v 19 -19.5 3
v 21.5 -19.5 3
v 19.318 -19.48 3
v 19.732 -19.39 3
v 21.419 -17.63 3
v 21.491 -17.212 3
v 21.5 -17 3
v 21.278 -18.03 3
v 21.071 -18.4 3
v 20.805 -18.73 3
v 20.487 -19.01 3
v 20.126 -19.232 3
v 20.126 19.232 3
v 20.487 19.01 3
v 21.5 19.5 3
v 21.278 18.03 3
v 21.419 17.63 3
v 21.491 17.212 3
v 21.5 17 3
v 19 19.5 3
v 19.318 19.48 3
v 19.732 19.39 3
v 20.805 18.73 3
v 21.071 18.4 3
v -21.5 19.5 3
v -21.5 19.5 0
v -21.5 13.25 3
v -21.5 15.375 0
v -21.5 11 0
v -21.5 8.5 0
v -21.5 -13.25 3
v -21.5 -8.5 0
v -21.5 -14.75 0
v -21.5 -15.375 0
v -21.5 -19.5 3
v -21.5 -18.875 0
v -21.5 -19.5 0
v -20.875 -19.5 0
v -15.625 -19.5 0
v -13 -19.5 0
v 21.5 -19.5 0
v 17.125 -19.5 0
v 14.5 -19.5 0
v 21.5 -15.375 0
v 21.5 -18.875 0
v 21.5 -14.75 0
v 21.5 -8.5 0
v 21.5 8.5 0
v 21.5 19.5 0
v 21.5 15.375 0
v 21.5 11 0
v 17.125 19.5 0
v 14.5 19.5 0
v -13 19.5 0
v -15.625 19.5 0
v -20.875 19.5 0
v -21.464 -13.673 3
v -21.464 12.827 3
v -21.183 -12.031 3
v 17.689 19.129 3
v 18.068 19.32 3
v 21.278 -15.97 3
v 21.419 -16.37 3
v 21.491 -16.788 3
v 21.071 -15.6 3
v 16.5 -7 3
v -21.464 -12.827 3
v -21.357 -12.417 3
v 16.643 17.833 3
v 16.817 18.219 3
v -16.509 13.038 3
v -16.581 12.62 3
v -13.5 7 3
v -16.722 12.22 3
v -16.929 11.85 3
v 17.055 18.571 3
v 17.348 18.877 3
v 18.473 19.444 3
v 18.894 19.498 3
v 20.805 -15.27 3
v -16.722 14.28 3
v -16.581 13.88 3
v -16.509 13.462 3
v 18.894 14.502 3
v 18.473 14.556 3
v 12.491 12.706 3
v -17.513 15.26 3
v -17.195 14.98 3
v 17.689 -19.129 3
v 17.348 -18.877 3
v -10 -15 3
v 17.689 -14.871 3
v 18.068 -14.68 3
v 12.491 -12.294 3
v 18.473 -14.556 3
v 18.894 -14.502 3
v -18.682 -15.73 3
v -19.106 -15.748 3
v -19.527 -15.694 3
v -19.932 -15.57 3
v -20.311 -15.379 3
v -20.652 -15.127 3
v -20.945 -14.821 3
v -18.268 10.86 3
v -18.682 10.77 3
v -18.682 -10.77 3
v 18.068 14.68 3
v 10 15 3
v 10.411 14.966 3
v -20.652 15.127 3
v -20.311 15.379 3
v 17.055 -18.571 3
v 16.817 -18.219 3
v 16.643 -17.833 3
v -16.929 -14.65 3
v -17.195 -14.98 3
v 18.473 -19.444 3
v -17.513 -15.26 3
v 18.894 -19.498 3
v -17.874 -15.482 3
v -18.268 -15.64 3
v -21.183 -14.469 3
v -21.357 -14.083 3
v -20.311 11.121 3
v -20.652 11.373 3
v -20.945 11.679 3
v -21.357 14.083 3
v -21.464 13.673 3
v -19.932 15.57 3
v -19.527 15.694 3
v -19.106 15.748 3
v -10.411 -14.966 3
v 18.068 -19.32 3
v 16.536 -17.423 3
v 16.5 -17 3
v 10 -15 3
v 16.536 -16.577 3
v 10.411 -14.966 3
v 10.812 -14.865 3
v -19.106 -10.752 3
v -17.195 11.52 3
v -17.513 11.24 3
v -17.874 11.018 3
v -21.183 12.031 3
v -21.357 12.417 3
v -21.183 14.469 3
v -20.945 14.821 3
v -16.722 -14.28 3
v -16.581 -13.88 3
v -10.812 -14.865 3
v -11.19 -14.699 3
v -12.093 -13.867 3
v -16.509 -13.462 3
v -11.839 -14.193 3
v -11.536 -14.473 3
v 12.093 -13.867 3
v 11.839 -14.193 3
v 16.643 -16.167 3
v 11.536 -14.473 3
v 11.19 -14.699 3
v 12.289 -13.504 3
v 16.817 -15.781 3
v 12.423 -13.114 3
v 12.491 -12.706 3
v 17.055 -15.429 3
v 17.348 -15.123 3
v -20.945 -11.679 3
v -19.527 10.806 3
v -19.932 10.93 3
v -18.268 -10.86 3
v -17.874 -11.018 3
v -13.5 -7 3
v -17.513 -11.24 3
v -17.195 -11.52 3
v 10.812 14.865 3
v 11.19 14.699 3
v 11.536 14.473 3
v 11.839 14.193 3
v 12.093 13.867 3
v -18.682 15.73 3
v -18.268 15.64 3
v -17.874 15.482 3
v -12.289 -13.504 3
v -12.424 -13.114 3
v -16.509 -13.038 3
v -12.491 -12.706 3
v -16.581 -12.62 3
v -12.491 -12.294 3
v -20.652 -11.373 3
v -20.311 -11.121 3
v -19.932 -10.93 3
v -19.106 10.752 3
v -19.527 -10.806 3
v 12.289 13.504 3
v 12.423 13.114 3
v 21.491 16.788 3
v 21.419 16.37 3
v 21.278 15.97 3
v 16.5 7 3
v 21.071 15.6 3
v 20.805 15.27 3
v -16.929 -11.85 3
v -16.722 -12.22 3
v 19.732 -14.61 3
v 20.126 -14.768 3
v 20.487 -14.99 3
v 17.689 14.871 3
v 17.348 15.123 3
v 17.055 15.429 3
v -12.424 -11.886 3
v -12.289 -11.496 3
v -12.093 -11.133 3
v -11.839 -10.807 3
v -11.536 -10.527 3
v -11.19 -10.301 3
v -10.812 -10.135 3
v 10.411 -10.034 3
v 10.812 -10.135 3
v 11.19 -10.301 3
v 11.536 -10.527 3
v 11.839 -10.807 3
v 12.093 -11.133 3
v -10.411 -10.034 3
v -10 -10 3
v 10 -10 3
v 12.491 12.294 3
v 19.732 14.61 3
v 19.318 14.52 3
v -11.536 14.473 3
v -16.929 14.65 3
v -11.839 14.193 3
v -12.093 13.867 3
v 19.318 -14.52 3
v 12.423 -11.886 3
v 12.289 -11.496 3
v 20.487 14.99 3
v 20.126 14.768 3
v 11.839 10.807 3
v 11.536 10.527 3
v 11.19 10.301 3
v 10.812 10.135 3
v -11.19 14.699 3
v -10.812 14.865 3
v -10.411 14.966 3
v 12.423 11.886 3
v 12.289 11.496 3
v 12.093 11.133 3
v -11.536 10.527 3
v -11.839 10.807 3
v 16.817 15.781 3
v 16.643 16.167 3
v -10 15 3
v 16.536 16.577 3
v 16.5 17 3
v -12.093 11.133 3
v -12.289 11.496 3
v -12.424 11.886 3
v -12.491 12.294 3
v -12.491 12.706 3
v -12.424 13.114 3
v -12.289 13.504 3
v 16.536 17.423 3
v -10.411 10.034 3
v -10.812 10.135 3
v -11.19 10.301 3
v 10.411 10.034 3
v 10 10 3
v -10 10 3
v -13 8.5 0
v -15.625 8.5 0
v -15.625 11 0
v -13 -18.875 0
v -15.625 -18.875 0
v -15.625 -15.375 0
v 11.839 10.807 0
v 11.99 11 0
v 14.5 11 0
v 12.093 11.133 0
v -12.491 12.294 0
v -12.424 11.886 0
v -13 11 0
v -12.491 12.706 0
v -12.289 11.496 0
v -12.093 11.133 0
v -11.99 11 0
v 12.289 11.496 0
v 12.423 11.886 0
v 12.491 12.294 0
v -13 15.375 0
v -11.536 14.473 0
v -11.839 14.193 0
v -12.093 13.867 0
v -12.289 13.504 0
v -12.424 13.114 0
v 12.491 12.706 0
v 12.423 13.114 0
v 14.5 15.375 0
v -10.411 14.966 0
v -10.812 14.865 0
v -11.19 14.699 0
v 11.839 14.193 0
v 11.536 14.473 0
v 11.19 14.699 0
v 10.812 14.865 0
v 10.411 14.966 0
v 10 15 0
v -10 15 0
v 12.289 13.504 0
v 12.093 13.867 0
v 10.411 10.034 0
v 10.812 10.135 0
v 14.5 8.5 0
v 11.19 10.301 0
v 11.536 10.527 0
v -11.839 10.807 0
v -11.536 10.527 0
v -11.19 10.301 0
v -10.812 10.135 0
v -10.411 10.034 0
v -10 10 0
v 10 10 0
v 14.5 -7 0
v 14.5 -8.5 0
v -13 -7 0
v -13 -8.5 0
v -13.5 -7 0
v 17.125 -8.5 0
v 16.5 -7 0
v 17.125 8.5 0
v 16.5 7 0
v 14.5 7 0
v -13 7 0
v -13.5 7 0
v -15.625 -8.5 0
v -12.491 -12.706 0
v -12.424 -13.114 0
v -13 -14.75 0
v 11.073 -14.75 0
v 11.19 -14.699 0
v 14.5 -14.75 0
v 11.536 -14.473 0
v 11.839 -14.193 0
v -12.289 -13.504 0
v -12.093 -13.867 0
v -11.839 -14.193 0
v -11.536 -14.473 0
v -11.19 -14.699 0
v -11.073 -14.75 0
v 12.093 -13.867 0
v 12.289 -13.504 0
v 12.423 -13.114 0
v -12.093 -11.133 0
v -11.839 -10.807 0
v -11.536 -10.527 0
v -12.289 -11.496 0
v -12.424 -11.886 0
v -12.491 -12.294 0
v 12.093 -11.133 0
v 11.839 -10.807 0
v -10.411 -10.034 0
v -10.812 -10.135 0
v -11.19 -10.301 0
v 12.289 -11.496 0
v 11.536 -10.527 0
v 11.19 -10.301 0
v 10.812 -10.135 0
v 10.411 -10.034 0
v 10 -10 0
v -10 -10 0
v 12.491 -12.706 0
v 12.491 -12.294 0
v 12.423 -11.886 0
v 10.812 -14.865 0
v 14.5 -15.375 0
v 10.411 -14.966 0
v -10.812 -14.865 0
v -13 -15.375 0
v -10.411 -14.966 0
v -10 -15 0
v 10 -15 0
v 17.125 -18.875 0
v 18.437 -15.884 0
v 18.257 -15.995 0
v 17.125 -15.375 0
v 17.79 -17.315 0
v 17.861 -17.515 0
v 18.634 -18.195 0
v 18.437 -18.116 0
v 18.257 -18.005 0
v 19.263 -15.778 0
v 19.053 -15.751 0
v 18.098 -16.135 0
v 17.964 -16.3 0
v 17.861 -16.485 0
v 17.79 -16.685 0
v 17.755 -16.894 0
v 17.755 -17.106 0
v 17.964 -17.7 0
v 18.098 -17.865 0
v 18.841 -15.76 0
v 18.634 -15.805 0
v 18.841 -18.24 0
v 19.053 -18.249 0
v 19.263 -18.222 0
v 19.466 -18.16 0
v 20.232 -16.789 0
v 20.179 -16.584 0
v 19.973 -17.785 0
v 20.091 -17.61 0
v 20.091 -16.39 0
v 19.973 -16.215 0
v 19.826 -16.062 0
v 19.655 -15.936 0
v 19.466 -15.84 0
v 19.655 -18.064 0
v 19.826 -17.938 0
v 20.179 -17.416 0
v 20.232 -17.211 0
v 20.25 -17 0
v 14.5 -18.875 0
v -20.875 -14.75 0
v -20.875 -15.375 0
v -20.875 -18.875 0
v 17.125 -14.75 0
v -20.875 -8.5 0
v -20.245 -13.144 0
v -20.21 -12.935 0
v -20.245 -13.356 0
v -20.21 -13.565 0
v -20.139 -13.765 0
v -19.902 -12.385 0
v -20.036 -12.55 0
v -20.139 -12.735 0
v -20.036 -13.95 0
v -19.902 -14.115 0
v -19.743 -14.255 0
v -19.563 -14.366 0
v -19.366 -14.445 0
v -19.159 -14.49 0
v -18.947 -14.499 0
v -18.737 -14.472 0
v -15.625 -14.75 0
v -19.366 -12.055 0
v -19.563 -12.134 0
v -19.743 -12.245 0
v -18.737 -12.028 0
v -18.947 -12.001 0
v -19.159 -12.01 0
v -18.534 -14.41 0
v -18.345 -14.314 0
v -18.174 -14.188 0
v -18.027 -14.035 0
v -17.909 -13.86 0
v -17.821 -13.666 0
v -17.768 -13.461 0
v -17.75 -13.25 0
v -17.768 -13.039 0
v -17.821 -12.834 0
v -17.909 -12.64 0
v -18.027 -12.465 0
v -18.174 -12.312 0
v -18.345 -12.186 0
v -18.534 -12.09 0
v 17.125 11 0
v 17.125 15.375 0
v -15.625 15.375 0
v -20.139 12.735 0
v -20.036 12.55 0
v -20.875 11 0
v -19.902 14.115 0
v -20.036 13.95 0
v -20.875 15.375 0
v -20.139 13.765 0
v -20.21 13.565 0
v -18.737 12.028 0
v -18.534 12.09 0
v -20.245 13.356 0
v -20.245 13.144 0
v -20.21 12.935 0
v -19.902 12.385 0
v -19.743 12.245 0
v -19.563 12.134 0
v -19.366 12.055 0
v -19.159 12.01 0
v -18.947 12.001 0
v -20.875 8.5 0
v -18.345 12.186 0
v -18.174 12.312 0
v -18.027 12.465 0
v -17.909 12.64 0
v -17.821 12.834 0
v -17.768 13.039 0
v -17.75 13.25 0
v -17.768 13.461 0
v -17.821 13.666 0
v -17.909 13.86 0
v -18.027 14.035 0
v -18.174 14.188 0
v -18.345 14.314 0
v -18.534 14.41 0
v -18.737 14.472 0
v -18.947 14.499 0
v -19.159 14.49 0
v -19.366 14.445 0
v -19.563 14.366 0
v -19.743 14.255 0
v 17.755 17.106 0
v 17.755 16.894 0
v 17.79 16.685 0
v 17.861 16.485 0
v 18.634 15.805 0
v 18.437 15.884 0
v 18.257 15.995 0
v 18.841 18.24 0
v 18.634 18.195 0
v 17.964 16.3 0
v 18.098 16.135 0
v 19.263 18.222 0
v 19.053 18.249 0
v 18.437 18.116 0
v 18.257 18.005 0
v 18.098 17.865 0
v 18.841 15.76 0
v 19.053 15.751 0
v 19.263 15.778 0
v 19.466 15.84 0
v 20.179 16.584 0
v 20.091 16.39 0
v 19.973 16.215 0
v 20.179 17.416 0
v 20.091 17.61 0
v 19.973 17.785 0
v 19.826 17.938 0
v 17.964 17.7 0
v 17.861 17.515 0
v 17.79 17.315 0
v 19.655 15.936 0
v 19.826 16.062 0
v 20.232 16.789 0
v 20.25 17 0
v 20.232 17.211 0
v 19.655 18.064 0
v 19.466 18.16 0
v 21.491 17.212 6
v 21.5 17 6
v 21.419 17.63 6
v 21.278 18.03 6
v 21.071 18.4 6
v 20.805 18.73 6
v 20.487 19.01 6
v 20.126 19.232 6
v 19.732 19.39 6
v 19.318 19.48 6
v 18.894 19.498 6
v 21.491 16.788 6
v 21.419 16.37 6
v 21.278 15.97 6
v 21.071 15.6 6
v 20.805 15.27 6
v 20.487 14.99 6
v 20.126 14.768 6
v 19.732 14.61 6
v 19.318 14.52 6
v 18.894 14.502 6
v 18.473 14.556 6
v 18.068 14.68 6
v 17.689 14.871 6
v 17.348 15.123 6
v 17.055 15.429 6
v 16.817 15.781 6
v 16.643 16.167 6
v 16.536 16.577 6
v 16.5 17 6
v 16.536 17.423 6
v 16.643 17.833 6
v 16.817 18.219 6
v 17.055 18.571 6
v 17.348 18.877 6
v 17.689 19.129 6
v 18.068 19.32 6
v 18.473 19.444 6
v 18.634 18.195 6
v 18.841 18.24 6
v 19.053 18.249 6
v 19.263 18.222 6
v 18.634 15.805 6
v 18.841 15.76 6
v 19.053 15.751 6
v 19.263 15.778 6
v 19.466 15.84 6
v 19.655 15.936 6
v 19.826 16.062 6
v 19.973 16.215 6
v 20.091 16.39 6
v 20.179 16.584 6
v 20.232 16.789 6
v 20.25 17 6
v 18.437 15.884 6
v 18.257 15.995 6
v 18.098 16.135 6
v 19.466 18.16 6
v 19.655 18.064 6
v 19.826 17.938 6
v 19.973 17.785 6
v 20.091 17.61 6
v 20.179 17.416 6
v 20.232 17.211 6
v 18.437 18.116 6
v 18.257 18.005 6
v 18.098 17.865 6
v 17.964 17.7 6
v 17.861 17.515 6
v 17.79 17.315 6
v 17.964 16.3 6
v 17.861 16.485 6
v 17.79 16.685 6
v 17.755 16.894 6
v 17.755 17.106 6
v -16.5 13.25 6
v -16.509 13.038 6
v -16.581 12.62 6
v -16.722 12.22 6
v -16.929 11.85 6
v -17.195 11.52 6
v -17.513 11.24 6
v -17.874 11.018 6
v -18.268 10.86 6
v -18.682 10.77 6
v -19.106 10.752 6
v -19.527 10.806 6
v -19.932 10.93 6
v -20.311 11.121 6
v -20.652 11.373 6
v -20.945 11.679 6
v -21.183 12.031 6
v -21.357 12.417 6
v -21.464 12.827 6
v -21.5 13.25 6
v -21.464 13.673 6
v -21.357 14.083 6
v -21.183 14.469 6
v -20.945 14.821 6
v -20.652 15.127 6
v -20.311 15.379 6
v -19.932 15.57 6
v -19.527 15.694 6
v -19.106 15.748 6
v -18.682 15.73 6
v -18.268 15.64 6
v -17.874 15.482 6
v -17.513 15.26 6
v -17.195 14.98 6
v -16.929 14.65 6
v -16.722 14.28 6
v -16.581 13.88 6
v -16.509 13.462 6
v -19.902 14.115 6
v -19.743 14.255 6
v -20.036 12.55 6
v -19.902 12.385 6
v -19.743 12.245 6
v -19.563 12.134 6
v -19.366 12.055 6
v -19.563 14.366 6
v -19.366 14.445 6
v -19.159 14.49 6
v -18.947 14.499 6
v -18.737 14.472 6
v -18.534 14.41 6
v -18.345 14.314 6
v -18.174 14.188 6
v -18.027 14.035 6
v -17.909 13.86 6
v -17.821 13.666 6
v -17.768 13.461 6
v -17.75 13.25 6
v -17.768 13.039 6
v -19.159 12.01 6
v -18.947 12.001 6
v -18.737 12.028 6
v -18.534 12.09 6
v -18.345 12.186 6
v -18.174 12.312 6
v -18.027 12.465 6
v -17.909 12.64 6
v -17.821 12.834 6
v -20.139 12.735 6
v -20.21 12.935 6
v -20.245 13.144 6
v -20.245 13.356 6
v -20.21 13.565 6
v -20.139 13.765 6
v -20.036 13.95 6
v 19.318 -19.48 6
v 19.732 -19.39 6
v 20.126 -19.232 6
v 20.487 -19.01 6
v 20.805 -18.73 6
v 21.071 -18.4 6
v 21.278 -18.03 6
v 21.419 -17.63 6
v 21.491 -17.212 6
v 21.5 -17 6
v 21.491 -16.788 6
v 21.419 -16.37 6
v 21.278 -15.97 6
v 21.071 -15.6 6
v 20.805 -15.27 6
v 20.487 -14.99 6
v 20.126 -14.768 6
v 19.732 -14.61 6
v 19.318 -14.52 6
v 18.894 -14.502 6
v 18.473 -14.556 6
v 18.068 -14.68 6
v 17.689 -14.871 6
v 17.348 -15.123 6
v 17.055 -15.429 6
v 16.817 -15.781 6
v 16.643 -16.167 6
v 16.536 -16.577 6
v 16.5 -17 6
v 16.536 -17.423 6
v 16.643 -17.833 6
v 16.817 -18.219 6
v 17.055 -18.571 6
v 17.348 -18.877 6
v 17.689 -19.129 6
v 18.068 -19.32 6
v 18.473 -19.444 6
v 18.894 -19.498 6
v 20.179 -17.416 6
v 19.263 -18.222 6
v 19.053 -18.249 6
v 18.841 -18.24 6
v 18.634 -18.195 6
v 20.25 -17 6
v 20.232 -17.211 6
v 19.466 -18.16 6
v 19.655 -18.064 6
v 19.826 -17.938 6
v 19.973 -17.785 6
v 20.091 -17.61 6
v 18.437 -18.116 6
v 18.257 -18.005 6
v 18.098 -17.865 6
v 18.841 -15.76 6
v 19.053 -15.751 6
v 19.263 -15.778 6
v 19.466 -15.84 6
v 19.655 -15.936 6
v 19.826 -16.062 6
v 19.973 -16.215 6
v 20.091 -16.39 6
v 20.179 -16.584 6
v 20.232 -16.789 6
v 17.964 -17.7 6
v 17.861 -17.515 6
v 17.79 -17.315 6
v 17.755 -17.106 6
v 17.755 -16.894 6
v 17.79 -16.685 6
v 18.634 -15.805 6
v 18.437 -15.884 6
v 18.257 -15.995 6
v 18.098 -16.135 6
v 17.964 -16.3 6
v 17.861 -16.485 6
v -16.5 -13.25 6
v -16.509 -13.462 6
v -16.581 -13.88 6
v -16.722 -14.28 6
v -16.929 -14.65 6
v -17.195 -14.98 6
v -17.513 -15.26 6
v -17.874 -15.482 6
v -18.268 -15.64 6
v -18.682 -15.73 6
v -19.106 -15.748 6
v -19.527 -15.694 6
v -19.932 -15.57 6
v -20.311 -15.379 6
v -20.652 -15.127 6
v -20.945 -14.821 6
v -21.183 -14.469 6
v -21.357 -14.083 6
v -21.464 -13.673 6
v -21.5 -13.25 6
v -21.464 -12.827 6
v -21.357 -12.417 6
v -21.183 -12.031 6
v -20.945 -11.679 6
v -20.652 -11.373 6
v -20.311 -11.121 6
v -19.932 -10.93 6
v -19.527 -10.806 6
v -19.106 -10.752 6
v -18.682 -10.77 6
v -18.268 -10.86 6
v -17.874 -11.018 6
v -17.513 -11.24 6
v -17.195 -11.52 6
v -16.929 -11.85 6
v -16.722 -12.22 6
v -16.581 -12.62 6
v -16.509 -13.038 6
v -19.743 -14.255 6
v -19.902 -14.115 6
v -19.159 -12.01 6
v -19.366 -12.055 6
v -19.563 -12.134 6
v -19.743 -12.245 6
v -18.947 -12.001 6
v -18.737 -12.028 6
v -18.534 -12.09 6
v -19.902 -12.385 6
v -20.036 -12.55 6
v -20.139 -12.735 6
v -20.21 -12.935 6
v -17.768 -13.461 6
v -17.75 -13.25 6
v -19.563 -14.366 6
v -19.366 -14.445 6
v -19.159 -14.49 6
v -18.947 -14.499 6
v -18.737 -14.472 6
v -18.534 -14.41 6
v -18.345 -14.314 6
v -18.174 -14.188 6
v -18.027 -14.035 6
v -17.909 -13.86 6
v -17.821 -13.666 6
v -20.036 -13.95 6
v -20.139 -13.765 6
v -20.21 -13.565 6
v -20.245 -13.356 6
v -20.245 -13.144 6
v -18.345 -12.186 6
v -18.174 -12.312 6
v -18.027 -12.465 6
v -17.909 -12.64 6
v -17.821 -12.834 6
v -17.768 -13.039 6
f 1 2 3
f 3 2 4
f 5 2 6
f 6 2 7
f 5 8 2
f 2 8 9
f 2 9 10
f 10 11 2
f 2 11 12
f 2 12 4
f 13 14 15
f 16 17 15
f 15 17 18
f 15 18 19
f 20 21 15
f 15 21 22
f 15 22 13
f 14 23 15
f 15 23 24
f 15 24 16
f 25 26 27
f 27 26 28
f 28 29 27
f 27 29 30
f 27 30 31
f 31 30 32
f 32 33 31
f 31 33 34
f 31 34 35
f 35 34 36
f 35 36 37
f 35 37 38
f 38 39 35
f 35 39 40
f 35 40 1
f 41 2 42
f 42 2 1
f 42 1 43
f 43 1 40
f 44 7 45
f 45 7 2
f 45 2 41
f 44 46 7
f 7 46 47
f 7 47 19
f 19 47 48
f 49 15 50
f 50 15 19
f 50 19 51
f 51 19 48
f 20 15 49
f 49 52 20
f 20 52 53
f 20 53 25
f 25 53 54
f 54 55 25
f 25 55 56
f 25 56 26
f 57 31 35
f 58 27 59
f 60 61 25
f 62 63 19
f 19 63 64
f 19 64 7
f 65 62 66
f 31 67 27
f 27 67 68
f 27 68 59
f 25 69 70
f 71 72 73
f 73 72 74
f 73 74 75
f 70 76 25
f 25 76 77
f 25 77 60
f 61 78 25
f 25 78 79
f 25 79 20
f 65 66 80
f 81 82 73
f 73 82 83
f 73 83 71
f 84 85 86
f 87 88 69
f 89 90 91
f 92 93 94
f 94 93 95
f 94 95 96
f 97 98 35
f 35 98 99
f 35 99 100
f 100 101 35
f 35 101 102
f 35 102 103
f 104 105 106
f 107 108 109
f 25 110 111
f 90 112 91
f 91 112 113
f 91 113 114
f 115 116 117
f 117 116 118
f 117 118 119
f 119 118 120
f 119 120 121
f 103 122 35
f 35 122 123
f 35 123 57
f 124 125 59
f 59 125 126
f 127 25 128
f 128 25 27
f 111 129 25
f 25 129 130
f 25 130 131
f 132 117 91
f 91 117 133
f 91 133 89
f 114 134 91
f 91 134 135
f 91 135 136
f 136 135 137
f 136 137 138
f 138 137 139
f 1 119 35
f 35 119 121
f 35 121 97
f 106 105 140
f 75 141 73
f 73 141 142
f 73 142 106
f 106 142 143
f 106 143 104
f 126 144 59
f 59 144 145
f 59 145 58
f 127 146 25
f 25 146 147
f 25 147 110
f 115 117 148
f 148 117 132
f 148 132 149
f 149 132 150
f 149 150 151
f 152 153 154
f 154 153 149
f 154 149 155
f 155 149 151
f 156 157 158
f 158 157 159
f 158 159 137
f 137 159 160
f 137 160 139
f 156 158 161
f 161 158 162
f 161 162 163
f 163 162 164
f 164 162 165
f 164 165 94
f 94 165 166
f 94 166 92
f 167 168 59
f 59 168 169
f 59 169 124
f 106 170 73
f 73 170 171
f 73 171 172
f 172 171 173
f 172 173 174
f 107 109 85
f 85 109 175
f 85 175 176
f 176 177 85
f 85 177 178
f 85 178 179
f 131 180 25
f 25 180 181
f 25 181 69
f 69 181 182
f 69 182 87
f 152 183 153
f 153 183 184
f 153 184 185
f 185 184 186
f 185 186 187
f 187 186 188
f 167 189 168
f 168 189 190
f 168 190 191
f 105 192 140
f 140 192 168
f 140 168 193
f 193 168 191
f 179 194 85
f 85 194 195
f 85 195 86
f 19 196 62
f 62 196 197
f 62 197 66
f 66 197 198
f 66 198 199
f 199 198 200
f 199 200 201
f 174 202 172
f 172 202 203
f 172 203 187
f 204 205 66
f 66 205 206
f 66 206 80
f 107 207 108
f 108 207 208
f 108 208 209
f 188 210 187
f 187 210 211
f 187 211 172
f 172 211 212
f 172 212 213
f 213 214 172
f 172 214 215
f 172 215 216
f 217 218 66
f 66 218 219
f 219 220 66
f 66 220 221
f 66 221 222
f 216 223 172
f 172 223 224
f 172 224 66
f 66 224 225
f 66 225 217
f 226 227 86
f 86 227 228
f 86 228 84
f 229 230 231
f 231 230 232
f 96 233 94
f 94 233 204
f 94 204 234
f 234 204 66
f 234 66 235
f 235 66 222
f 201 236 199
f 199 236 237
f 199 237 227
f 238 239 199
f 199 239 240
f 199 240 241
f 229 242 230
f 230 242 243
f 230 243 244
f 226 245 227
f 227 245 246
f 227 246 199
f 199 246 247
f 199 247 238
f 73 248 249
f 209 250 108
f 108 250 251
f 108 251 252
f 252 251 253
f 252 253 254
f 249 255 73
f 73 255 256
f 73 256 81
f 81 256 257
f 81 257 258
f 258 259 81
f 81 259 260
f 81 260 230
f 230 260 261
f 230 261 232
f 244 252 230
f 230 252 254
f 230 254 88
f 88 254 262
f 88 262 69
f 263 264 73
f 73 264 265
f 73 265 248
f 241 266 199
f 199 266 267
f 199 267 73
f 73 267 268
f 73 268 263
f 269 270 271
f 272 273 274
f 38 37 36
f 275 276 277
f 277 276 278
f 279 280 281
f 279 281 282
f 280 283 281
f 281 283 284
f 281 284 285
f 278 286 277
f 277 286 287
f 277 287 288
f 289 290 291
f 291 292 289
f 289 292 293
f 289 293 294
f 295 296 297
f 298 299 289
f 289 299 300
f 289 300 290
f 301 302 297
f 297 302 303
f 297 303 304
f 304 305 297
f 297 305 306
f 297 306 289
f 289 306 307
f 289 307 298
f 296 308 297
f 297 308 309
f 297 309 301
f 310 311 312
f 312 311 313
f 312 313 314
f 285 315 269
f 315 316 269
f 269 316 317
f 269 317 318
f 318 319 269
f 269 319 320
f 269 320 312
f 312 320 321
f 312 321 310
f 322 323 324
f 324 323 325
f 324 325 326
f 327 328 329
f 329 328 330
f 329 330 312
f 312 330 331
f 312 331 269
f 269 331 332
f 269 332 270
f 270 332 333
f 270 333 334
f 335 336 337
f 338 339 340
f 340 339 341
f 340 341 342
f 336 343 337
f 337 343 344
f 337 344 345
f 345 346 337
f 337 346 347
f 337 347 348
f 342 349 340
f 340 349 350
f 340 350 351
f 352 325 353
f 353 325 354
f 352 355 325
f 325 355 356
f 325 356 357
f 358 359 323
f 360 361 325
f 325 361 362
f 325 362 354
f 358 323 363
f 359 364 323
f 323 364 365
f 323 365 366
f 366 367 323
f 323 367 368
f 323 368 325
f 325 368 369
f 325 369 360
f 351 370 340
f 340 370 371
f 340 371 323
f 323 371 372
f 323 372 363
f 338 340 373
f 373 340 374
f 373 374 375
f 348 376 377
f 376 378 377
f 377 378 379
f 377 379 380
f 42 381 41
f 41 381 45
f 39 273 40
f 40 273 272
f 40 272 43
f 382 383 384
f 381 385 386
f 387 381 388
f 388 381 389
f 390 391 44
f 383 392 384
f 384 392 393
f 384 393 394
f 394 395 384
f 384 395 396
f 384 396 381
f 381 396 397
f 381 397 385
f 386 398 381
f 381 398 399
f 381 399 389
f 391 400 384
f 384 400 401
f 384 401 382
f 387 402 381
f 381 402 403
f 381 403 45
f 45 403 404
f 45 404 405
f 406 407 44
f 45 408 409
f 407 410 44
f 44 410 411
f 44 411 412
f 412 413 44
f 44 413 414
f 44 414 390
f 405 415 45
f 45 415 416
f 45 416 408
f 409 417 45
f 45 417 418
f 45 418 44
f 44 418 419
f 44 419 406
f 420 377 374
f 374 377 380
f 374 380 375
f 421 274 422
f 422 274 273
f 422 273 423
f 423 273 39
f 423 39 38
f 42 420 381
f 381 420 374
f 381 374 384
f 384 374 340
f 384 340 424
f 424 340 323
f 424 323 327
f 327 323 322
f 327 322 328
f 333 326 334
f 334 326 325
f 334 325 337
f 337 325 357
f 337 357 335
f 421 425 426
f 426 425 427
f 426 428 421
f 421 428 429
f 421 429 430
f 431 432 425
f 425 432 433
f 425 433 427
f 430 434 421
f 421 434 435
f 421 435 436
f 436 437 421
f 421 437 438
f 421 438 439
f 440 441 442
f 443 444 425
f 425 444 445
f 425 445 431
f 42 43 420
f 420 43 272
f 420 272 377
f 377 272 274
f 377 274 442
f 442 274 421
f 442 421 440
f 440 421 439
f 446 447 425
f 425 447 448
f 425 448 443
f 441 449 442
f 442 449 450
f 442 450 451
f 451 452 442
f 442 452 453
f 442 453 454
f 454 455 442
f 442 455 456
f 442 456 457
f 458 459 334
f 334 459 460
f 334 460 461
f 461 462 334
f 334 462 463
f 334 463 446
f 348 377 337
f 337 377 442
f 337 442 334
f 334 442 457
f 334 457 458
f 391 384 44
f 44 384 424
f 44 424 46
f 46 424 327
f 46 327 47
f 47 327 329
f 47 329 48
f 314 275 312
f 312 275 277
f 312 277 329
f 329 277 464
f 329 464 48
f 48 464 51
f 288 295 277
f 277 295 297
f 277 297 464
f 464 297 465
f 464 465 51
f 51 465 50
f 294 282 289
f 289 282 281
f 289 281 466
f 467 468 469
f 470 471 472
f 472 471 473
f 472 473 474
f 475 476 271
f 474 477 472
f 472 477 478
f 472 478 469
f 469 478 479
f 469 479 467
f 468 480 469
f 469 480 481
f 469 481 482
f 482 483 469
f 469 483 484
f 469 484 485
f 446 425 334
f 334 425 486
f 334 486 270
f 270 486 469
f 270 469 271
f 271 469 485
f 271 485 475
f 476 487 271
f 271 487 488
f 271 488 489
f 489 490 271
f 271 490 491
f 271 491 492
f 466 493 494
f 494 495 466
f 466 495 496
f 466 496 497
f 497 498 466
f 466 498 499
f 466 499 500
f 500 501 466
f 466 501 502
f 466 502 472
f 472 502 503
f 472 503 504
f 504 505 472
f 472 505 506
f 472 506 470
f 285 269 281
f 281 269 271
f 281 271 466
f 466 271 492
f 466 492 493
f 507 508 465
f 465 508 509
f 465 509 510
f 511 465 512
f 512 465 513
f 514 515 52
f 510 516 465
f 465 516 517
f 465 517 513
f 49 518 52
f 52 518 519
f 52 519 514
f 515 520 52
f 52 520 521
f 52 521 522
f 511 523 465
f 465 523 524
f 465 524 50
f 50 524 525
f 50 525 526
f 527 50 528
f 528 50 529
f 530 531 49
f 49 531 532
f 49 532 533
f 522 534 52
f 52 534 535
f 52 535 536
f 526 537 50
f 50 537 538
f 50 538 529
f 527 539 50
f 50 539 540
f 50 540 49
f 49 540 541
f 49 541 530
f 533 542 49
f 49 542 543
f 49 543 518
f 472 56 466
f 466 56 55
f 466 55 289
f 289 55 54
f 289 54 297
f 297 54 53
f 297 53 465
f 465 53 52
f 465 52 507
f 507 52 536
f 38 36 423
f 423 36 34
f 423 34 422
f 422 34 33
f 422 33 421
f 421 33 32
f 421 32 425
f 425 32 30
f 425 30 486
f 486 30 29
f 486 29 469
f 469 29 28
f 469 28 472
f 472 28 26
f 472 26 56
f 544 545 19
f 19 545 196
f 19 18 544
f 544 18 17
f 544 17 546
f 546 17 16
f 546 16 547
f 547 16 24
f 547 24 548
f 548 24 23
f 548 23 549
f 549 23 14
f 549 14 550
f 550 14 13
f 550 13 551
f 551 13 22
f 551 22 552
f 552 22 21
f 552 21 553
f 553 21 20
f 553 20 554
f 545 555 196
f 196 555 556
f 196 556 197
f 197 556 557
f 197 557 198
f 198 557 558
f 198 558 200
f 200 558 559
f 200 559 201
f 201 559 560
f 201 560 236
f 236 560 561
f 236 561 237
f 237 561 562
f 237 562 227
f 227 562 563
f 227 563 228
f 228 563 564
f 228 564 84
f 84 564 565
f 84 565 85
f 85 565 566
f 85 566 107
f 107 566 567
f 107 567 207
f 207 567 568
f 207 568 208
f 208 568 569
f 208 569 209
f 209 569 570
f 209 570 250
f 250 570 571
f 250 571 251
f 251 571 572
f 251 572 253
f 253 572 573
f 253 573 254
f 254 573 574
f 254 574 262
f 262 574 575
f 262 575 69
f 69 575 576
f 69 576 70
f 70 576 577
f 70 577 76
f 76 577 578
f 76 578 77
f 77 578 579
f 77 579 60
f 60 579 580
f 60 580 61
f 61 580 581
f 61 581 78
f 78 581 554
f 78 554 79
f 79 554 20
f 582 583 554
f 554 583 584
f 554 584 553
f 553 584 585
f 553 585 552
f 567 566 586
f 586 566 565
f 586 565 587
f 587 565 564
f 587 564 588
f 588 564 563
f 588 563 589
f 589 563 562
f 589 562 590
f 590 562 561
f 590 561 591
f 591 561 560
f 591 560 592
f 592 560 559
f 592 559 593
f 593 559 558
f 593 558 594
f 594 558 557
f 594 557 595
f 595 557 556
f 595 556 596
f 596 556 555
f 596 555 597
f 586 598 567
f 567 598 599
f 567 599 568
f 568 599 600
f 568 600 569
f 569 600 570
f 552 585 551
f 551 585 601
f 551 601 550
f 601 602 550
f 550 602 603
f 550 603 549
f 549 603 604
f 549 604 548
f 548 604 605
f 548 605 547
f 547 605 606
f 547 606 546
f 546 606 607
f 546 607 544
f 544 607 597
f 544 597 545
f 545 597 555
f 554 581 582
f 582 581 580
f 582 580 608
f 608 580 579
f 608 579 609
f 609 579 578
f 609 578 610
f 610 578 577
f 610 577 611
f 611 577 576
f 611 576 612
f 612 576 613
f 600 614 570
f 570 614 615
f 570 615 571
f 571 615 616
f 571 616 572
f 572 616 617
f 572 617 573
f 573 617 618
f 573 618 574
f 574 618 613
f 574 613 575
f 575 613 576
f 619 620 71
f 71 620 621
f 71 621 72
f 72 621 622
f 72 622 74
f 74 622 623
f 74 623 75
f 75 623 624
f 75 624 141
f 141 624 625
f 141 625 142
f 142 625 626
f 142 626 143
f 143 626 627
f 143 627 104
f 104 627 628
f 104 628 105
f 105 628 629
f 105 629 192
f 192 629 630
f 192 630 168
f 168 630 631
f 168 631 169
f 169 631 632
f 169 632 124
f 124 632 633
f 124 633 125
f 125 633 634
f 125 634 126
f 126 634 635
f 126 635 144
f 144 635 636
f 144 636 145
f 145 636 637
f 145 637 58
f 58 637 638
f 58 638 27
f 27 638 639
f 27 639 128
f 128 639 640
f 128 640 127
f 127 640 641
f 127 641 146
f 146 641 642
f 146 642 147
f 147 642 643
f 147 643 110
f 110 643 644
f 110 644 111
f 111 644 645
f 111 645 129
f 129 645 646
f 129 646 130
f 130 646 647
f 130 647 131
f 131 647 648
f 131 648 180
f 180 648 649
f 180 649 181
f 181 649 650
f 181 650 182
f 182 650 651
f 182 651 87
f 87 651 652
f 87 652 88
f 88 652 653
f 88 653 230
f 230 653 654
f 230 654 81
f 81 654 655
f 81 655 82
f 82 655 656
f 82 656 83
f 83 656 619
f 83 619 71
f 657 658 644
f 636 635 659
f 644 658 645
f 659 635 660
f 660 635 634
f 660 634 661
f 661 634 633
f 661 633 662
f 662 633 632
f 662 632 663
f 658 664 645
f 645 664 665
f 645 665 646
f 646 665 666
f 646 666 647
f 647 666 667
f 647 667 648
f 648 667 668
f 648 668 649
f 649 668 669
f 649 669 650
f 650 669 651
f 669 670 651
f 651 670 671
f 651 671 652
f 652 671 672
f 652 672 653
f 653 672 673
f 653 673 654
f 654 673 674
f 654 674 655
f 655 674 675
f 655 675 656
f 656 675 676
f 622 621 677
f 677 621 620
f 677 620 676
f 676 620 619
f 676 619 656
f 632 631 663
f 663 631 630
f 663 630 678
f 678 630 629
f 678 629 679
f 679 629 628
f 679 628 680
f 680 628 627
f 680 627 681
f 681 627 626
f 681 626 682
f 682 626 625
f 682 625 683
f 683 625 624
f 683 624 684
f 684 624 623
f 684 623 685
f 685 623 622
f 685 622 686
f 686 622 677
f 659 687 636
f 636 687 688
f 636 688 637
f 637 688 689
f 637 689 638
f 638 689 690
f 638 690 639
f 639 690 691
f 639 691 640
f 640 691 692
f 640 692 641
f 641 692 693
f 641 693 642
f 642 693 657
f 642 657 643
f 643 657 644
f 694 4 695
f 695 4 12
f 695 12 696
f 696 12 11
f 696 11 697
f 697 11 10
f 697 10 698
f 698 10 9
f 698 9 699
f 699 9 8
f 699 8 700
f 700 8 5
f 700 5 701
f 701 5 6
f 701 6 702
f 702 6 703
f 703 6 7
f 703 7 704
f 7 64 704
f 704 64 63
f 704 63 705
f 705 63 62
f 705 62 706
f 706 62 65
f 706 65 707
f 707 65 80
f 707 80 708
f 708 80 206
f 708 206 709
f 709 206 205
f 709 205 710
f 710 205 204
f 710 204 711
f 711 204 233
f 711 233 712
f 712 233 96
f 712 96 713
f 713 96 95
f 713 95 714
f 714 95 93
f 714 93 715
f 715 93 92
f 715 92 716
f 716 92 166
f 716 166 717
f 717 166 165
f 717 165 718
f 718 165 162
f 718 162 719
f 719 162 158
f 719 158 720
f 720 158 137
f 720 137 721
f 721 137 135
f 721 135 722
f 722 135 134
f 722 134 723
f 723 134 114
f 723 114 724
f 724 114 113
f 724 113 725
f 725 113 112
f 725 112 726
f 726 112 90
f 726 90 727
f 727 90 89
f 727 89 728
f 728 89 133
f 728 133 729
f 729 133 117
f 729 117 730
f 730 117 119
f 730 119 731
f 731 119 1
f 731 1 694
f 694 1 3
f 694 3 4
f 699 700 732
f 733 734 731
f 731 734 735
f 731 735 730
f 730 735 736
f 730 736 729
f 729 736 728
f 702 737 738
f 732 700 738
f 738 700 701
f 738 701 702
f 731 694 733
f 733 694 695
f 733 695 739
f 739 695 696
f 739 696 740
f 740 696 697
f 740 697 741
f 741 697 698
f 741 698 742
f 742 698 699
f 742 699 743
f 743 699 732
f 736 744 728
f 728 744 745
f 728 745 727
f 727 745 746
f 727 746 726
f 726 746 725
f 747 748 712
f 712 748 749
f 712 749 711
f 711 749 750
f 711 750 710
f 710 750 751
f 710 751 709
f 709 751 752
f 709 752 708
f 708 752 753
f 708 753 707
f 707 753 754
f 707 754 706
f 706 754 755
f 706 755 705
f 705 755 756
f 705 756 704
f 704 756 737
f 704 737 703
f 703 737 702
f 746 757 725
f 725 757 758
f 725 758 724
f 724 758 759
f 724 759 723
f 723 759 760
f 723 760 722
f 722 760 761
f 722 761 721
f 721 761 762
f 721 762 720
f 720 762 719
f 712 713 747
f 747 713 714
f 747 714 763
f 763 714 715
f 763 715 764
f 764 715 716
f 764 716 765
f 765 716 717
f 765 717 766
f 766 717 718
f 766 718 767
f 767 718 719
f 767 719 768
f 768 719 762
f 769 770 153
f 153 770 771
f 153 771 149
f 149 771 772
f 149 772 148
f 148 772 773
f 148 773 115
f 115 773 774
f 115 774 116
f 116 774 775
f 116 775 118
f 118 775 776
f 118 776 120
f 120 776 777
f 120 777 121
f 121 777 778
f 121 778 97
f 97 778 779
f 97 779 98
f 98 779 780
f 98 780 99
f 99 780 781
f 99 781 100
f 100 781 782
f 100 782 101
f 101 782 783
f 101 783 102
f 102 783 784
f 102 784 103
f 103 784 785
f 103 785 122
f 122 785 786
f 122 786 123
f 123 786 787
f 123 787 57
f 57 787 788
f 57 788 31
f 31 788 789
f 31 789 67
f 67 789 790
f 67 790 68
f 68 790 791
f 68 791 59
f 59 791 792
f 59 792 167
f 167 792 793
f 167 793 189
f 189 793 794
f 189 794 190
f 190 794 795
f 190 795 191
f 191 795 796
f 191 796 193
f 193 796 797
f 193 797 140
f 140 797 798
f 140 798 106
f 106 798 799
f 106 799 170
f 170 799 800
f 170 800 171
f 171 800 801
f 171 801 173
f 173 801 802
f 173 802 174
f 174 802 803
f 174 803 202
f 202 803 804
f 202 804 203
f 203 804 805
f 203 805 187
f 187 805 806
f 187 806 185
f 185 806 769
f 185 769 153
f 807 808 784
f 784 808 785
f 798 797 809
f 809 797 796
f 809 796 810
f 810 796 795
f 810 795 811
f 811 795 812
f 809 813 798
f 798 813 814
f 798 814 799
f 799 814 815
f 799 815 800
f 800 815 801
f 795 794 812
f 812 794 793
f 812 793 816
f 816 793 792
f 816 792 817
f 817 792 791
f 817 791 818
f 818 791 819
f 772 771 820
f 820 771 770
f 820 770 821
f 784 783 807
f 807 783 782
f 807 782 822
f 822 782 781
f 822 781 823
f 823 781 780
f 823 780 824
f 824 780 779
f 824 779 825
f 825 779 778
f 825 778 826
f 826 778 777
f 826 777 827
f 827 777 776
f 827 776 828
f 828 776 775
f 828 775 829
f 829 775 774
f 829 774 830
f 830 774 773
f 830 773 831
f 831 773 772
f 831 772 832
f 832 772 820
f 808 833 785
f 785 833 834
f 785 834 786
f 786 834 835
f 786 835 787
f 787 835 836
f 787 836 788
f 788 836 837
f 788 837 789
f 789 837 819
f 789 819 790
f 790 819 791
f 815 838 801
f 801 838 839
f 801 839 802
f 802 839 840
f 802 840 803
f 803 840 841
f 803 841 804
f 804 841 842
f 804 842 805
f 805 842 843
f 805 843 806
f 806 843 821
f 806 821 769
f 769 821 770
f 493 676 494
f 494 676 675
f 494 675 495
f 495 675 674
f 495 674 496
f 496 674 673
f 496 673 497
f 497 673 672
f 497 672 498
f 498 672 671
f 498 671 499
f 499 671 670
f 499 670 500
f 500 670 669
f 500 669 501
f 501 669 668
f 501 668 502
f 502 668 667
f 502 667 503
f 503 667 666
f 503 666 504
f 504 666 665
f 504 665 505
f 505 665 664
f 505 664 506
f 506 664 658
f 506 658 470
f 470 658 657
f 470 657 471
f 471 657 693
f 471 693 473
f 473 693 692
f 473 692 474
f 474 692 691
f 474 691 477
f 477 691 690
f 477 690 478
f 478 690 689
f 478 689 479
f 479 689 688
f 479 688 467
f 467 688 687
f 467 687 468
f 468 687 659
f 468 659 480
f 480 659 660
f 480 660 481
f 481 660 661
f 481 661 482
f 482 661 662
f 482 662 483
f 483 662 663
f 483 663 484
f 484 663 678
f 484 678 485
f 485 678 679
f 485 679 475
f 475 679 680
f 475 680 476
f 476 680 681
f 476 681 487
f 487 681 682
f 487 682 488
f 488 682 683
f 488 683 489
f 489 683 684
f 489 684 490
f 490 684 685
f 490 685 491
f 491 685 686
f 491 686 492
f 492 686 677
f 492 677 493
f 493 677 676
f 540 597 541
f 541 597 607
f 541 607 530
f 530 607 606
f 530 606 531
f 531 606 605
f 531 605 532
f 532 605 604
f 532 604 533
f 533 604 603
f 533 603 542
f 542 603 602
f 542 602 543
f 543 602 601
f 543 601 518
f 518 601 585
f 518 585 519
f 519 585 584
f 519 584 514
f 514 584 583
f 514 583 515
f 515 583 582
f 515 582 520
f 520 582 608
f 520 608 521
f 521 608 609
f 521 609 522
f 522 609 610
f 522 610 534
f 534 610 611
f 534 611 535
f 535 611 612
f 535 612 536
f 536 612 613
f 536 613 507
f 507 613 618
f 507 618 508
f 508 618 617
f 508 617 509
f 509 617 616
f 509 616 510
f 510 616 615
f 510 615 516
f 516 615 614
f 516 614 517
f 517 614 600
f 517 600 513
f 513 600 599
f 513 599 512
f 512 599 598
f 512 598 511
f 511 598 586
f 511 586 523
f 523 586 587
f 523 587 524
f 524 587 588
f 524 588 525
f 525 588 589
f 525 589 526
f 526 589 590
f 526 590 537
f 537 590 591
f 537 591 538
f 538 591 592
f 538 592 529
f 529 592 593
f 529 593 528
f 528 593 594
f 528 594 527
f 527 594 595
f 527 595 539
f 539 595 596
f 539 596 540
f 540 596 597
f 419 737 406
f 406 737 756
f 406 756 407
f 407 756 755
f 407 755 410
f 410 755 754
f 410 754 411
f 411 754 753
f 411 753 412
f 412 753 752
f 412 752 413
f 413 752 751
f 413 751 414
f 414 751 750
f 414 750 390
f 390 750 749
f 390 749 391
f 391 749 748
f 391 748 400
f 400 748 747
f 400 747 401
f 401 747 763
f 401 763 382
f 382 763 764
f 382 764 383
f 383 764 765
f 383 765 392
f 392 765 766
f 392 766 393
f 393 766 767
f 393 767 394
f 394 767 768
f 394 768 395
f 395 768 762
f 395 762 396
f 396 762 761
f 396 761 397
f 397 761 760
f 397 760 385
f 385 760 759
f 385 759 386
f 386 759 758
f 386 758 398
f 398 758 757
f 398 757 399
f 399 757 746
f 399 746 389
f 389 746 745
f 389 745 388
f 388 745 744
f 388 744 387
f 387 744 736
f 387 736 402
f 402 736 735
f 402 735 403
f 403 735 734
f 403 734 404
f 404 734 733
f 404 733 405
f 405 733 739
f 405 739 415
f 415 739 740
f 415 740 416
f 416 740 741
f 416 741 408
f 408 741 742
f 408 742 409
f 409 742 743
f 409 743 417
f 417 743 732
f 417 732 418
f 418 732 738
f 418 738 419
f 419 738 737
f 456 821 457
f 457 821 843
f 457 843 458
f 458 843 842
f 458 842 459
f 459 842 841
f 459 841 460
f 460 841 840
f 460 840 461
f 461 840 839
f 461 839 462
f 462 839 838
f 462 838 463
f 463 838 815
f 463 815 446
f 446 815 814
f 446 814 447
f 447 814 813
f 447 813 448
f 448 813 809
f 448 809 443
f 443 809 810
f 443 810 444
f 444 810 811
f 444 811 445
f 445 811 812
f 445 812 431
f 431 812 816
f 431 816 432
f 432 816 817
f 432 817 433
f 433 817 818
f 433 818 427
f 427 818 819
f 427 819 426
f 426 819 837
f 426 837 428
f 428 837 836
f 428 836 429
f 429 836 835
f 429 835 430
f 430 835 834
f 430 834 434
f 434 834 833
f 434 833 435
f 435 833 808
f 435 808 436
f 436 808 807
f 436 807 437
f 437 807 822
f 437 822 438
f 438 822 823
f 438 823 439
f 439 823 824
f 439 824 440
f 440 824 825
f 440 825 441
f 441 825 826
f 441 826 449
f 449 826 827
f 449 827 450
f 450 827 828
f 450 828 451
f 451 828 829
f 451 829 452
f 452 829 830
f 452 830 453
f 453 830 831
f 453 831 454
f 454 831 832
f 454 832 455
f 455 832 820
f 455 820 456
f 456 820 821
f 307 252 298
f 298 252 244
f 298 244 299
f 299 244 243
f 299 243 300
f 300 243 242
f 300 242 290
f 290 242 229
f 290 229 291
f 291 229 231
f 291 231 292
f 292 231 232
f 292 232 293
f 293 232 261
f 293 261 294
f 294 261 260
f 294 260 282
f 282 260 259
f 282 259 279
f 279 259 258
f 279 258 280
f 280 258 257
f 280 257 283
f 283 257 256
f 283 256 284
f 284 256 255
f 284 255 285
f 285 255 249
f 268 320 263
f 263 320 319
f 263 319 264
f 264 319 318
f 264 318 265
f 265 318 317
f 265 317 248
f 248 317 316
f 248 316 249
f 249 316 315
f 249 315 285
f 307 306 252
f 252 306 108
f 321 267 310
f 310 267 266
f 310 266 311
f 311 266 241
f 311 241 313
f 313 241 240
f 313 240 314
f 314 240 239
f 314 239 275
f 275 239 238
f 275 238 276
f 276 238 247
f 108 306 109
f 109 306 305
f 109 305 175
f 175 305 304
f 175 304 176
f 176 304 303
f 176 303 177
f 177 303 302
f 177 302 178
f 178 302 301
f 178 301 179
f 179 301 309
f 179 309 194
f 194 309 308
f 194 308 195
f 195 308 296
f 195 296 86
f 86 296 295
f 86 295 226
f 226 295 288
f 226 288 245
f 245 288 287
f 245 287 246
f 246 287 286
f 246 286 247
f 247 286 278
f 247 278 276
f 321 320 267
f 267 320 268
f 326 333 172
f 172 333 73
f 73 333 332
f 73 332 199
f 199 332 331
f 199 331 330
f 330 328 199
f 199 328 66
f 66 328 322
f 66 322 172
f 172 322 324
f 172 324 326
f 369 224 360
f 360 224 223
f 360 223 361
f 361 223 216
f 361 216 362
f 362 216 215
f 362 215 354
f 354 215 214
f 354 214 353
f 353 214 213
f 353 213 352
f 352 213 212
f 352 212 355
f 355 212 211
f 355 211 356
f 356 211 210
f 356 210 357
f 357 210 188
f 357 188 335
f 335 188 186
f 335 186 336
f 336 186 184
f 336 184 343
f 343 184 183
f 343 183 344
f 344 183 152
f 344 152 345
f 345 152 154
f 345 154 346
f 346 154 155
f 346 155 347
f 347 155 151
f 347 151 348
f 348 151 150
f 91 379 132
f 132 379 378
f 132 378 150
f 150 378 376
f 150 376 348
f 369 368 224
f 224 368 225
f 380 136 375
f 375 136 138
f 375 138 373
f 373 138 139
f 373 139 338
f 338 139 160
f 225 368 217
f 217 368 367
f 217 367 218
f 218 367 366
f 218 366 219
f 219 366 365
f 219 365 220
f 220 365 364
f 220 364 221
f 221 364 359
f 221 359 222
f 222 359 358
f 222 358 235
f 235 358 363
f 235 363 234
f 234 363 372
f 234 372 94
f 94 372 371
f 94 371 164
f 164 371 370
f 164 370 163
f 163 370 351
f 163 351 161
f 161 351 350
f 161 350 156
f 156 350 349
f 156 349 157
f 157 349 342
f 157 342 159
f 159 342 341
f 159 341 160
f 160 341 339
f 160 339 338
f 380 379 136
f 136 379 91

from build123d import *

# Parameters (mm, degrees)
SCHIZZO1_W                   = 43
SCHIZZO1_H                   = 39
ESTRUSIONE_ESTRUSIONE1_DEPTH = 3
SCHIZZO2_R                   = 2.5
ESTRUSIONE_ESTRUSIONE2_DEPTH = 3
SCHIZZO3_R                   = 1.25
TAGLIO_ESTRUSIONE1_DEPTH     = 30.639500671
SCHIZZO4_W                   = 30
SCHIZZO4_H                   = 14
TAGLIO_ESTRUSIONE2_DEPTH     = 30.180472923


with BuildPart() as part:
    # Schizzo1 → Estrusione-Estrusione1 (new body)
    with BuildSketch(Plane.XY):
        Rectangle(SCHIZZO1_W, SCHIZZO1_H)
    extrude(amount=ESTRUSIONE_ESTRUSIONE1_DEPTH)

    # Schizzo2 → Estrusione-Estrusione2 (add)
    with BuildSketch(Plane.XY.offset(3)):
        with Locations((19, 17)):
            Circle(SCHIZZO2_R)
        with Locations(Location((-19, 13.25, 0), (0, 0, 180))):
            Circle(SCHIZZO2_R)
        with Locations((19, -17)):
            Circle(SCHIZZO2_R)
        with Locations(Location((-19, -13.25, 0), (0, 0, 180))):
            Circle(SCHIZZO2_R)
    extrude(amount=ESTRUSIONE_ESTRUSIONE2_DEPTH)

    # Schizzo3 → Taglio-Estrusione1 (cut, through all)
    with BuildSketch(Plane.XY.offset(6)):
        with Locations((-19, 13.25)):
            Circle(SCHIZZO3_R)
        with Locations((19, 17)):
            Circle(SCHIZZO3_R)
        with Locations((19, -17)):
            Circle(SCHIZZO3_R)
        with Locations((-19, -13.25)):
            Circle(SCHIZZO3_R)
    extrude(amount=-TAGLIO_ESTRUSIONE1_DEPTH, mode=Mode.SUBTRACT)

    # Schizzo4 → Taglio-Estrusione2 (cut, through all)
    with BuildSketch(Plane.XY.offset(3)):
        with BuildLine():
            Line((-10, 15), (10, 15))
            ThreePointArc((10, 15), (12.5, 12.5), (10, 10))
            Line((10, 10), (-10, 10))
            ThreePointArc((-10, 10), (-12.5, 12.5), (-10, 15))
        make_face()
        with Locations((1.5, 0)):
            Rectangle(SCHIZZO4_W, SCHIZZO4_H)
        with BuildLine():
            Line((-10, -15), (10, -15))
            ThreePointArc((10, -15), (12.5, -12.5), (10, -10))
            Line((10, -10), (-10, -10))
            ThreePointArc((-10, -10), (-12.5, -12.5), (-10, -15))
        make_face()
    extrude(amount=-TAGLIO_ESTRUSIONE2_DEPTH, mode=Mode.SUBTRACT)


solid = part.part
